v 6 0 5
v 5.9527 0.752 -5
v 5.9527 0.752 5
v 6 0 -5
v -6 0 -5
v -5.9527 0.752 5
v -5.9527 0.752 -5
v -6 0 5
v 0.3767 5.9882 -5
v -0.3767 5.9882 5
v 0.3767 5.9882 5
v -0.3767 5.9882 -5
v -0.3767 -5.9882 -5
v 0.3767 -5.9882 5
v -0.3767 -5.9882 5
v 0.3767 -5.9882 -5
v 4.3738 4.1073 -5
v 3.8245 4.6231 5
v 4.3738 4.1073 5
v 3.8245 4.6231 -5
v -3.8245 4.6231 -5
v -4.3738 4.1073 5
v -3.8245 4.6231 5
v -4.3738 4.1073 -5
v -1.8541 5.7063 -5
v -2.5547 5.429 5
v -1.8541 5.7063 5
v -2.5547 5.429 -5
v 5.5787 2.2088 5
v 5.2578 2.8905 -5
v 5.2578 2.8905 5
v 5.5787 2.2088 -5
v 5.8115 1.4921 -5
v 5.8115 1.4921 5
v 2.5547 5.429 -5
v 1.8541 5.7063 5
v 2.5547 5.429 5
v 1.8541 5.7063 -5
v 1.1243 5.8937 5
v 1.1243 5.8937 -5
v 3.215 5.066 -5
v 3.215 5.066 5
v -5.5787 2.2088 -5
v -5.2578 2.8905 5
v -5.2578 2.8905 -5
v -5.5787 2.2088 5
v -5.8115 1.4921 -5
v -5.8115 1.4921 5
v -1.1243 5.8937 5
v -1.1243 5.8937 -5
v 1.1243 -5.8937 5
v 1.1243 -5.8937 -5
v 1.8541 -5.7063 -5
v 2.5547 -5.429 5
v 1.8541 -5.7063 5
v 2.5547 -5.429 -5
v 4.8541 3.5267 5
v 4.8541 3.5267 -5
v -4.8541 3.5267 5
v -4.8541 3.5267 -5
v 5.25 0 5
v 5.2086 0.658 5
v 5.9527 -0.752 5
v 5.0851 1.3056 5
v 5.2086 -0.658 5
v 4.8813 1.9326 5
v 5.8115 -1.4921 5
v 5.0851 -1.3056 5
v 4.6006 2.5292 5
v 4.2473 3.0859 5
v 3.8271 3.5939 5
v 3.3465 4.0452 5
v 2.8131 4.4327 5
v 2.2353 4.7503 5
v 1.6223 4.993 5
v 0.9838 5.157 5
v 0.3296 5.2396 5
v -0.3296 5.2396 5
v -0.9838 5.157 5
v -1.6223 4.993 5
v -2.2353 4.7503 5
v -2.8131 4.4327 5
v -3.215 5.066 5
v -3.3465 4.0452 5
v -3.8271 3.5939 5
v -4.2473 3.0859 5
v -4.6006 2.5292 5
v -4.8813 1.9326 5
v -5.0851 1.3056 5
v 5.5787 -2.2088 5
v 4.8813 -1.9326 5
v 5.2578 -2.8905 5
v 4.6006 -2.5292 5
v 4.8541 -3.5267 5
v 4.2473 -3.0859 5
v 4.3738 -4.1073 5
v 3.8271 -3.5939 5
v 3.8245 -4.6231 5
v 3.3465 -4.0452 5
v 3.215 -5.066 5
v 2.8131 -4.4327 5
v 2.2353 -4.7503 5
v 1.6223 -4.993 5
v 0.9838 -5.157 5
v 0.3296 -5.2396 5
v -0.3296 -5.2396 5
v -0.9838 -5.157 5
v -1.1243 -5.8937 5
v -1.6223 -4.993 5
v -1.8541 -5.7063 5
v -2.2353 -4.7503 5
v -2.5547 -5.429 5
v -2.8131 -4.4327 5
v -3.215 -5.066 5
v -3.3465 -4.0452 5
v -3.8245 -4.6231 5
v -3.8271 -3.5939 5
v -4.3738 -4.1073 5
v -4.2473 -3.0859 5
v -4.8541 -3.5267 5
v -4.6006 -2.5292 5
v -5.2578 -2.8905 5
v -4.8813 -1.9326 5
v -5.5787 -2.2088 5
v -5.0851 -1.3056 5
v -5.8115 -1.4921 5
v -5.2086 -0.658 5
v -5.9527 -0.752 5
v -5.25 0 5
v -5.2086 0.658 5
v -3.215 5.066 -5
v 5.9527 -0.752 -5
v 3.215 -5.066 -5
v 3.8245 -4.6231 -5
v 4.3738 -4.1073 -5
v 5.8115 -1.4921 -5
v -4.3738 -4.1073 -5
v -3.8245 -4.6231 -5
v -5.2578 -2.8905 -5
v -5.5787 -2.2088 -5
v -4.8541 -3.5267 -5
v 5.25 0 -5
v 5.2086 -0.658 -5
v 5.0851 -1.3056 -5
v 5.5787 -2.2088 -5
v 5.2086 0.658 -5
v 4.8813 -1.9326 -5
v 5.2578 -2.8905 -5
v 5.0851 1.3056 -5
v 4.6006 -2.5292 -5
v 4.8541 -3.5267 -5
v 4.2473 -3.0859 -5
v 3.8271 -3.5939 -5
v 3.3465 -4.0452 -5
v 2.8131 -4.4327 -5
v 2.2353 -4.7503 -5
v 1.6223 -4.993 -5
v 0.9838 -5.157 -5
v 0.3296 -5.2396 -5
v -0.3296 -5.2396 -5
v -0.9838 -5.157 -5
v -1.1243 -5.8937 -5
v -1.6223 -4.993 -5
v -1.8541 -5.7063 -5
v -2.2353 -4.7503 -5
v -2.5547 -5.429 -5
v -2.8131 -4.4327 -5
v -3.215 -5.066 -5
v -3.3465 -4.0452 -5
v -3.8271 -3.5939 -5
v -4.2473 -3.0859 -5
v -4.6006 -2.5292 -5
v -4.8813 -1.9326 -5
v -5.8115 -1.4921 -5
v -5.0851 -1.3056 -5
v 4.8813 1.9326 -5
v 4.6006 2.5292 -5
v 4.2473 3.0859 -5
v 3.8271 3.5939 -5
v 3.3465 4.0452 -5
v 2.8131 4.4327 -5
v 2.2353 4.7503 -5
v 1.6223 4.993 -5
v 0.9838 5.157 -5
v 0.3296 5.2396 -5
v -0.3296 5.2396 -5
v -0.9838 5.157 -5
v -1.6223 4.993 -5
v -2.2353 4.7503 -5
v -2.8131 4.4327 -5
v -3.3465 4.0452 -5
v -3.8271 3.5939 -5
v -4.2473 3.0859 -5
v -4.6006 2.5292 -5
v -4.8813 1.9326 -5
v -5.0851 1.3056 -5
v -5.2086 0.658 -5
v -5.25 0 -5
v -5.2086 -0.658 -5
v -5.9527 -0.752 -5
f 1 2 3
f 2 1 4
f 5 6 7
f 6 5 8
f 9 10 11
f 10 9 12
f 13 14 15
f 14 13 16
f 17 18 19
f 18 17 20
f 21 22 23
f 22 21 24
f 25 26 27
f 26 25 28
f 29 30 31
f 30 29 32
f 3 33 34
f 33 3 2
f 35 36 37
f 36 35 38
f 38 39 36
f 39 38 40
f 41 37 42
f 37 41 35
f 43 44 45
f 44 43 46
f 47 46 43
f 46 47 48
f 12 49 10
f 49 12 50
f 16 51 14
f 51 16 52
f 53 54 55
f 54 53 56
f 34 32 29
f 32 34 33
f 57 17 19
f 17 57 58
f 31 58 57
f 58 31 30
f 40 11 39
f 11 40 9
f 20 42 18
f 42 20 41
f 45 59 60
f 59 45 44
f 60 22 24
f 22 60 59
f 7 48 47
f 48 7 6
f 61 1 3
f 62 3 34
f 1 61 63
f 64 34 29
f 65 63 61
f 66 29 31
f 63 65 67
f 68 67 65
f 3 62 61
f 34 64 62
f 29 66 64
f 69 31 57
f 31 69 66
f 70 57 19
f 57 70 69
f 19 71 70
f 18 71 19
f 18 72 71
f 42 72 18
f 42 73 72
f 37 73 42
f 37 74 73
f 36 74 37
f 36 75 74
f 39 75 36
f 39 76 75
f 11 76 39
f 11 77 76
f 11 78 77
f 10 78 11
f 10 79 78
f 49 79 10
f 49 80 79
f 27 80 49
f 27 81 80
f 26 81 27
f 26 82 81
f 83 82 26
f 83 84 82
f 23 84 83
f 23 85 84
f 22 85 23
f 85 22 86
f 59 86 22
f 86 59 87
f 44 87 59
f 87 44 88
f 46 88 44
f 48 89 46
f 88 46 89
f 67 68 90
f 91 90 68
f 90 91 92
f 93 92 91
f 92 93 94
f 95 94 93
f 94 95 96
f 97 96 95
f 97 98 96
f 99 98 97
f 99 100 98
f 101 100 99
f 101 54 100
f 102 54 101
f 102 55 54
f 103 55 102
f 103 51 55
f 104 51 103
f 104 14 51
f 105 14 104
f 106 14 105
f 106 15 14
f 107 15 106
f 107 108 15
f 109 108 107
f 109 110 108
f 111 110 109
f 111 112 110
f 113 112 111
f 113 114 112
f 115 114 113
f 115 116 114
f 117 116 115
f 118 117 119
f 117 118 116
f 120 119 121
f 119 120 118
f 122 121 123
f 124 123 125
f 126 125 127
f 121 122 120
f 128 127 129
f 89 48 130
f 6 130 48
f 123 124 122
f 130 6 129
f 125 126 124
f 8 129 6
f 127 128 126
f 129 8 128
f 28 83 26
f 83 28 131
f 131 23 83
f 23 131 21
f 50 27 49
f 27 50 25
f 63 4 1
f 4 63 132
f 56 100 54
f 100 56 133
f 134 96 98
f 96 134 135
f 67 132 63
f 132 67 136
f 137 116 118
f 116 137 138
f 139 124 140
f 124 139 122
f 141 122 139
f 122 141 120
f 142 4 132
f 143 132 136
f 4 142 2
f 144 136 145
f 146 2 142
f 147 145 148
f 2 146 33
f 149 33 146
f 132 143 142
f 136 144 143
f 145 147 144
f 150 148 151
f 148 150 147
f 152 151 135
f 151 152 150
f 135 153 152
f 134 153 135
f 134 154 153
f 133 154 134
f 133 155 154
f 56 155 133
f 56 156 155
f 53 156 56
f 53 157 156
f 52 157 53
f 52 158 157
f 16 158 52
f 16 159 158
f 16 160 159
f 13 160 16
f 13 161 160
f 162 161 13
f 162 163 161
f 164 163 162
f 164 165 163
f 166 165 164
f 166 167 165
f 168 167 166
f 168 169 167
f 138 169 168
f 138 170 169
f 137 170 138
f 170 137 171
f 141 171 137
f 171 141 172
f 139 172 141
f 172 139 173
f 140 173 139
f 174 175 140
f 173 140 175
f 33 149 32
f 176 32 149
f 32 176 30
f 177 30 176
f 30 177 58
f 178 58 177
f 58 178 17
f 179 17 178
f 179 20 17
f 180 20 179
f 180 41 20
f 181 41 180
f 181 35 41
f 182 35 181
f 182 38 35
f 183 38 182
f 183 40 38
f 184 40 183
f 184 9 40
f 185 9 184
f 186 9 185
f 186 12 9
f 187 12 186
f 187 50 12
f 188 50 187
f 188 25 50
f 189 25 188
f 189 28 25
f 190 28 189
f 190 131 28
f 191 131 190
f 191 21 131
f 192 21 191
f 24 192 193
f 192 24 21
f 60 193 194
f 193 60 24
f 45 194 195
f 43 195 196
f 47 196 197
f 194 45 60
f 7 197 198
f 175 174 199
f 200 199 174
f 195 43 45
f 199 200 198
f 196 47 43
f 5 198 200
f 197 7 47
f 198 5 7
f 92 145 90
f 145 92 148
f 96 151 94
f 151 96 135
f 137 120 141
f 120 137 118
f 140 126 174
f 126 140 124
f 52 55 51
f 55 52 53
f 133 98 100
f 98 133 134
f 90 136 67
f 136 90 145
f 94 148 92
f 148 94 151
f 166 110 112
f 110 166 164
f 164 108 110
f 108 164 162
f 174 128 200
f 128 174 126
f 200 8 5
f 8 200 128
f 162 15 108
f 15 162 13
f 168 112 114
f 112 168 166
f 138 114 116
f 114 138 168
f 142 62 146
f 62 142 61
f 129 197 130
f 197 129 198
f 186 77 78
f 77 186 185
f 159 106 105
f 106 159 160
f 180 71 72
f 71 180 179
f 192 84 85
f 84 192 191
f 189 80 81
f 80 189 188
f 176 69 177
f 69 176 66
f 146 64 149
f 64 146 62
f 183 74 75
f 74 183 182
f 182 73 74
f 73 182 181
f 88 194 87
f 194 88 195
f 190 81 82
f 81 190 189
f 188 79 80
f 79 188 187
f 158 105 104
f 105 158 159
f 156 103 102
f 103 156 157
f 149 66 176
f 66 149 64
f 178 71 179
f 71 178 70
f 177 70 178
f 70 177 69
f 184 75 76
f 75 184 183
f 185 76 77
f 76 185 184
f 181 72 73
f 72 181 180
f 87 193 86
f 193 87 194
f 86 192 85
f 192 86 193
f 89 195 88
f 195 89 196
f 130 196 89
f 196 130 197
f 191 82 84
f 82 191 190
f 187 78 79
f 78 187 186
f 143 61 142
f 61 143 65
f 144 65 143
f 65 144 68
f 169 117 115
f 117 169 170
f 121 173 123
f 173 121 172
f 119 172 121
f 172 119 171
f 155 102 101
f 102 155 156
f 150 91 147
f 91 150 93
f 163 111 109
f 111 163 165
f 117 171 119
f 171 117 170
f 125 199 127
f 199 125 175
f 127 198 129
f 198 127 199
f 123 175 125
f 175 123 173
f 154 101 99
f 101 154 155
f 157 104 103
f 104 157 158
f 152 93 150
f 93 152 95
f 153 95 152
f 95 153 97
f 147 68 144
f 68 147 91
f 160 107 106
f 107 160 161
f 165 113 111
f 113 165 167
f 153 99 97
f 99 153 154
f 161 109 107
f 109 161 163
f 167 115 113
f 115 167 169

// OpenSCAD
$fn = 50;


difference() {
	union() {
		translate(v = [0, 0, -5.0000000000]) {
			cylinder(h = 10, r = 6.0000000000);
		}
	}
	union() {
		translate(v = [0, 0, -100.0000000000]) {
			cylinder(h = 200, r = 5.2500000000);
		}
	}
}
